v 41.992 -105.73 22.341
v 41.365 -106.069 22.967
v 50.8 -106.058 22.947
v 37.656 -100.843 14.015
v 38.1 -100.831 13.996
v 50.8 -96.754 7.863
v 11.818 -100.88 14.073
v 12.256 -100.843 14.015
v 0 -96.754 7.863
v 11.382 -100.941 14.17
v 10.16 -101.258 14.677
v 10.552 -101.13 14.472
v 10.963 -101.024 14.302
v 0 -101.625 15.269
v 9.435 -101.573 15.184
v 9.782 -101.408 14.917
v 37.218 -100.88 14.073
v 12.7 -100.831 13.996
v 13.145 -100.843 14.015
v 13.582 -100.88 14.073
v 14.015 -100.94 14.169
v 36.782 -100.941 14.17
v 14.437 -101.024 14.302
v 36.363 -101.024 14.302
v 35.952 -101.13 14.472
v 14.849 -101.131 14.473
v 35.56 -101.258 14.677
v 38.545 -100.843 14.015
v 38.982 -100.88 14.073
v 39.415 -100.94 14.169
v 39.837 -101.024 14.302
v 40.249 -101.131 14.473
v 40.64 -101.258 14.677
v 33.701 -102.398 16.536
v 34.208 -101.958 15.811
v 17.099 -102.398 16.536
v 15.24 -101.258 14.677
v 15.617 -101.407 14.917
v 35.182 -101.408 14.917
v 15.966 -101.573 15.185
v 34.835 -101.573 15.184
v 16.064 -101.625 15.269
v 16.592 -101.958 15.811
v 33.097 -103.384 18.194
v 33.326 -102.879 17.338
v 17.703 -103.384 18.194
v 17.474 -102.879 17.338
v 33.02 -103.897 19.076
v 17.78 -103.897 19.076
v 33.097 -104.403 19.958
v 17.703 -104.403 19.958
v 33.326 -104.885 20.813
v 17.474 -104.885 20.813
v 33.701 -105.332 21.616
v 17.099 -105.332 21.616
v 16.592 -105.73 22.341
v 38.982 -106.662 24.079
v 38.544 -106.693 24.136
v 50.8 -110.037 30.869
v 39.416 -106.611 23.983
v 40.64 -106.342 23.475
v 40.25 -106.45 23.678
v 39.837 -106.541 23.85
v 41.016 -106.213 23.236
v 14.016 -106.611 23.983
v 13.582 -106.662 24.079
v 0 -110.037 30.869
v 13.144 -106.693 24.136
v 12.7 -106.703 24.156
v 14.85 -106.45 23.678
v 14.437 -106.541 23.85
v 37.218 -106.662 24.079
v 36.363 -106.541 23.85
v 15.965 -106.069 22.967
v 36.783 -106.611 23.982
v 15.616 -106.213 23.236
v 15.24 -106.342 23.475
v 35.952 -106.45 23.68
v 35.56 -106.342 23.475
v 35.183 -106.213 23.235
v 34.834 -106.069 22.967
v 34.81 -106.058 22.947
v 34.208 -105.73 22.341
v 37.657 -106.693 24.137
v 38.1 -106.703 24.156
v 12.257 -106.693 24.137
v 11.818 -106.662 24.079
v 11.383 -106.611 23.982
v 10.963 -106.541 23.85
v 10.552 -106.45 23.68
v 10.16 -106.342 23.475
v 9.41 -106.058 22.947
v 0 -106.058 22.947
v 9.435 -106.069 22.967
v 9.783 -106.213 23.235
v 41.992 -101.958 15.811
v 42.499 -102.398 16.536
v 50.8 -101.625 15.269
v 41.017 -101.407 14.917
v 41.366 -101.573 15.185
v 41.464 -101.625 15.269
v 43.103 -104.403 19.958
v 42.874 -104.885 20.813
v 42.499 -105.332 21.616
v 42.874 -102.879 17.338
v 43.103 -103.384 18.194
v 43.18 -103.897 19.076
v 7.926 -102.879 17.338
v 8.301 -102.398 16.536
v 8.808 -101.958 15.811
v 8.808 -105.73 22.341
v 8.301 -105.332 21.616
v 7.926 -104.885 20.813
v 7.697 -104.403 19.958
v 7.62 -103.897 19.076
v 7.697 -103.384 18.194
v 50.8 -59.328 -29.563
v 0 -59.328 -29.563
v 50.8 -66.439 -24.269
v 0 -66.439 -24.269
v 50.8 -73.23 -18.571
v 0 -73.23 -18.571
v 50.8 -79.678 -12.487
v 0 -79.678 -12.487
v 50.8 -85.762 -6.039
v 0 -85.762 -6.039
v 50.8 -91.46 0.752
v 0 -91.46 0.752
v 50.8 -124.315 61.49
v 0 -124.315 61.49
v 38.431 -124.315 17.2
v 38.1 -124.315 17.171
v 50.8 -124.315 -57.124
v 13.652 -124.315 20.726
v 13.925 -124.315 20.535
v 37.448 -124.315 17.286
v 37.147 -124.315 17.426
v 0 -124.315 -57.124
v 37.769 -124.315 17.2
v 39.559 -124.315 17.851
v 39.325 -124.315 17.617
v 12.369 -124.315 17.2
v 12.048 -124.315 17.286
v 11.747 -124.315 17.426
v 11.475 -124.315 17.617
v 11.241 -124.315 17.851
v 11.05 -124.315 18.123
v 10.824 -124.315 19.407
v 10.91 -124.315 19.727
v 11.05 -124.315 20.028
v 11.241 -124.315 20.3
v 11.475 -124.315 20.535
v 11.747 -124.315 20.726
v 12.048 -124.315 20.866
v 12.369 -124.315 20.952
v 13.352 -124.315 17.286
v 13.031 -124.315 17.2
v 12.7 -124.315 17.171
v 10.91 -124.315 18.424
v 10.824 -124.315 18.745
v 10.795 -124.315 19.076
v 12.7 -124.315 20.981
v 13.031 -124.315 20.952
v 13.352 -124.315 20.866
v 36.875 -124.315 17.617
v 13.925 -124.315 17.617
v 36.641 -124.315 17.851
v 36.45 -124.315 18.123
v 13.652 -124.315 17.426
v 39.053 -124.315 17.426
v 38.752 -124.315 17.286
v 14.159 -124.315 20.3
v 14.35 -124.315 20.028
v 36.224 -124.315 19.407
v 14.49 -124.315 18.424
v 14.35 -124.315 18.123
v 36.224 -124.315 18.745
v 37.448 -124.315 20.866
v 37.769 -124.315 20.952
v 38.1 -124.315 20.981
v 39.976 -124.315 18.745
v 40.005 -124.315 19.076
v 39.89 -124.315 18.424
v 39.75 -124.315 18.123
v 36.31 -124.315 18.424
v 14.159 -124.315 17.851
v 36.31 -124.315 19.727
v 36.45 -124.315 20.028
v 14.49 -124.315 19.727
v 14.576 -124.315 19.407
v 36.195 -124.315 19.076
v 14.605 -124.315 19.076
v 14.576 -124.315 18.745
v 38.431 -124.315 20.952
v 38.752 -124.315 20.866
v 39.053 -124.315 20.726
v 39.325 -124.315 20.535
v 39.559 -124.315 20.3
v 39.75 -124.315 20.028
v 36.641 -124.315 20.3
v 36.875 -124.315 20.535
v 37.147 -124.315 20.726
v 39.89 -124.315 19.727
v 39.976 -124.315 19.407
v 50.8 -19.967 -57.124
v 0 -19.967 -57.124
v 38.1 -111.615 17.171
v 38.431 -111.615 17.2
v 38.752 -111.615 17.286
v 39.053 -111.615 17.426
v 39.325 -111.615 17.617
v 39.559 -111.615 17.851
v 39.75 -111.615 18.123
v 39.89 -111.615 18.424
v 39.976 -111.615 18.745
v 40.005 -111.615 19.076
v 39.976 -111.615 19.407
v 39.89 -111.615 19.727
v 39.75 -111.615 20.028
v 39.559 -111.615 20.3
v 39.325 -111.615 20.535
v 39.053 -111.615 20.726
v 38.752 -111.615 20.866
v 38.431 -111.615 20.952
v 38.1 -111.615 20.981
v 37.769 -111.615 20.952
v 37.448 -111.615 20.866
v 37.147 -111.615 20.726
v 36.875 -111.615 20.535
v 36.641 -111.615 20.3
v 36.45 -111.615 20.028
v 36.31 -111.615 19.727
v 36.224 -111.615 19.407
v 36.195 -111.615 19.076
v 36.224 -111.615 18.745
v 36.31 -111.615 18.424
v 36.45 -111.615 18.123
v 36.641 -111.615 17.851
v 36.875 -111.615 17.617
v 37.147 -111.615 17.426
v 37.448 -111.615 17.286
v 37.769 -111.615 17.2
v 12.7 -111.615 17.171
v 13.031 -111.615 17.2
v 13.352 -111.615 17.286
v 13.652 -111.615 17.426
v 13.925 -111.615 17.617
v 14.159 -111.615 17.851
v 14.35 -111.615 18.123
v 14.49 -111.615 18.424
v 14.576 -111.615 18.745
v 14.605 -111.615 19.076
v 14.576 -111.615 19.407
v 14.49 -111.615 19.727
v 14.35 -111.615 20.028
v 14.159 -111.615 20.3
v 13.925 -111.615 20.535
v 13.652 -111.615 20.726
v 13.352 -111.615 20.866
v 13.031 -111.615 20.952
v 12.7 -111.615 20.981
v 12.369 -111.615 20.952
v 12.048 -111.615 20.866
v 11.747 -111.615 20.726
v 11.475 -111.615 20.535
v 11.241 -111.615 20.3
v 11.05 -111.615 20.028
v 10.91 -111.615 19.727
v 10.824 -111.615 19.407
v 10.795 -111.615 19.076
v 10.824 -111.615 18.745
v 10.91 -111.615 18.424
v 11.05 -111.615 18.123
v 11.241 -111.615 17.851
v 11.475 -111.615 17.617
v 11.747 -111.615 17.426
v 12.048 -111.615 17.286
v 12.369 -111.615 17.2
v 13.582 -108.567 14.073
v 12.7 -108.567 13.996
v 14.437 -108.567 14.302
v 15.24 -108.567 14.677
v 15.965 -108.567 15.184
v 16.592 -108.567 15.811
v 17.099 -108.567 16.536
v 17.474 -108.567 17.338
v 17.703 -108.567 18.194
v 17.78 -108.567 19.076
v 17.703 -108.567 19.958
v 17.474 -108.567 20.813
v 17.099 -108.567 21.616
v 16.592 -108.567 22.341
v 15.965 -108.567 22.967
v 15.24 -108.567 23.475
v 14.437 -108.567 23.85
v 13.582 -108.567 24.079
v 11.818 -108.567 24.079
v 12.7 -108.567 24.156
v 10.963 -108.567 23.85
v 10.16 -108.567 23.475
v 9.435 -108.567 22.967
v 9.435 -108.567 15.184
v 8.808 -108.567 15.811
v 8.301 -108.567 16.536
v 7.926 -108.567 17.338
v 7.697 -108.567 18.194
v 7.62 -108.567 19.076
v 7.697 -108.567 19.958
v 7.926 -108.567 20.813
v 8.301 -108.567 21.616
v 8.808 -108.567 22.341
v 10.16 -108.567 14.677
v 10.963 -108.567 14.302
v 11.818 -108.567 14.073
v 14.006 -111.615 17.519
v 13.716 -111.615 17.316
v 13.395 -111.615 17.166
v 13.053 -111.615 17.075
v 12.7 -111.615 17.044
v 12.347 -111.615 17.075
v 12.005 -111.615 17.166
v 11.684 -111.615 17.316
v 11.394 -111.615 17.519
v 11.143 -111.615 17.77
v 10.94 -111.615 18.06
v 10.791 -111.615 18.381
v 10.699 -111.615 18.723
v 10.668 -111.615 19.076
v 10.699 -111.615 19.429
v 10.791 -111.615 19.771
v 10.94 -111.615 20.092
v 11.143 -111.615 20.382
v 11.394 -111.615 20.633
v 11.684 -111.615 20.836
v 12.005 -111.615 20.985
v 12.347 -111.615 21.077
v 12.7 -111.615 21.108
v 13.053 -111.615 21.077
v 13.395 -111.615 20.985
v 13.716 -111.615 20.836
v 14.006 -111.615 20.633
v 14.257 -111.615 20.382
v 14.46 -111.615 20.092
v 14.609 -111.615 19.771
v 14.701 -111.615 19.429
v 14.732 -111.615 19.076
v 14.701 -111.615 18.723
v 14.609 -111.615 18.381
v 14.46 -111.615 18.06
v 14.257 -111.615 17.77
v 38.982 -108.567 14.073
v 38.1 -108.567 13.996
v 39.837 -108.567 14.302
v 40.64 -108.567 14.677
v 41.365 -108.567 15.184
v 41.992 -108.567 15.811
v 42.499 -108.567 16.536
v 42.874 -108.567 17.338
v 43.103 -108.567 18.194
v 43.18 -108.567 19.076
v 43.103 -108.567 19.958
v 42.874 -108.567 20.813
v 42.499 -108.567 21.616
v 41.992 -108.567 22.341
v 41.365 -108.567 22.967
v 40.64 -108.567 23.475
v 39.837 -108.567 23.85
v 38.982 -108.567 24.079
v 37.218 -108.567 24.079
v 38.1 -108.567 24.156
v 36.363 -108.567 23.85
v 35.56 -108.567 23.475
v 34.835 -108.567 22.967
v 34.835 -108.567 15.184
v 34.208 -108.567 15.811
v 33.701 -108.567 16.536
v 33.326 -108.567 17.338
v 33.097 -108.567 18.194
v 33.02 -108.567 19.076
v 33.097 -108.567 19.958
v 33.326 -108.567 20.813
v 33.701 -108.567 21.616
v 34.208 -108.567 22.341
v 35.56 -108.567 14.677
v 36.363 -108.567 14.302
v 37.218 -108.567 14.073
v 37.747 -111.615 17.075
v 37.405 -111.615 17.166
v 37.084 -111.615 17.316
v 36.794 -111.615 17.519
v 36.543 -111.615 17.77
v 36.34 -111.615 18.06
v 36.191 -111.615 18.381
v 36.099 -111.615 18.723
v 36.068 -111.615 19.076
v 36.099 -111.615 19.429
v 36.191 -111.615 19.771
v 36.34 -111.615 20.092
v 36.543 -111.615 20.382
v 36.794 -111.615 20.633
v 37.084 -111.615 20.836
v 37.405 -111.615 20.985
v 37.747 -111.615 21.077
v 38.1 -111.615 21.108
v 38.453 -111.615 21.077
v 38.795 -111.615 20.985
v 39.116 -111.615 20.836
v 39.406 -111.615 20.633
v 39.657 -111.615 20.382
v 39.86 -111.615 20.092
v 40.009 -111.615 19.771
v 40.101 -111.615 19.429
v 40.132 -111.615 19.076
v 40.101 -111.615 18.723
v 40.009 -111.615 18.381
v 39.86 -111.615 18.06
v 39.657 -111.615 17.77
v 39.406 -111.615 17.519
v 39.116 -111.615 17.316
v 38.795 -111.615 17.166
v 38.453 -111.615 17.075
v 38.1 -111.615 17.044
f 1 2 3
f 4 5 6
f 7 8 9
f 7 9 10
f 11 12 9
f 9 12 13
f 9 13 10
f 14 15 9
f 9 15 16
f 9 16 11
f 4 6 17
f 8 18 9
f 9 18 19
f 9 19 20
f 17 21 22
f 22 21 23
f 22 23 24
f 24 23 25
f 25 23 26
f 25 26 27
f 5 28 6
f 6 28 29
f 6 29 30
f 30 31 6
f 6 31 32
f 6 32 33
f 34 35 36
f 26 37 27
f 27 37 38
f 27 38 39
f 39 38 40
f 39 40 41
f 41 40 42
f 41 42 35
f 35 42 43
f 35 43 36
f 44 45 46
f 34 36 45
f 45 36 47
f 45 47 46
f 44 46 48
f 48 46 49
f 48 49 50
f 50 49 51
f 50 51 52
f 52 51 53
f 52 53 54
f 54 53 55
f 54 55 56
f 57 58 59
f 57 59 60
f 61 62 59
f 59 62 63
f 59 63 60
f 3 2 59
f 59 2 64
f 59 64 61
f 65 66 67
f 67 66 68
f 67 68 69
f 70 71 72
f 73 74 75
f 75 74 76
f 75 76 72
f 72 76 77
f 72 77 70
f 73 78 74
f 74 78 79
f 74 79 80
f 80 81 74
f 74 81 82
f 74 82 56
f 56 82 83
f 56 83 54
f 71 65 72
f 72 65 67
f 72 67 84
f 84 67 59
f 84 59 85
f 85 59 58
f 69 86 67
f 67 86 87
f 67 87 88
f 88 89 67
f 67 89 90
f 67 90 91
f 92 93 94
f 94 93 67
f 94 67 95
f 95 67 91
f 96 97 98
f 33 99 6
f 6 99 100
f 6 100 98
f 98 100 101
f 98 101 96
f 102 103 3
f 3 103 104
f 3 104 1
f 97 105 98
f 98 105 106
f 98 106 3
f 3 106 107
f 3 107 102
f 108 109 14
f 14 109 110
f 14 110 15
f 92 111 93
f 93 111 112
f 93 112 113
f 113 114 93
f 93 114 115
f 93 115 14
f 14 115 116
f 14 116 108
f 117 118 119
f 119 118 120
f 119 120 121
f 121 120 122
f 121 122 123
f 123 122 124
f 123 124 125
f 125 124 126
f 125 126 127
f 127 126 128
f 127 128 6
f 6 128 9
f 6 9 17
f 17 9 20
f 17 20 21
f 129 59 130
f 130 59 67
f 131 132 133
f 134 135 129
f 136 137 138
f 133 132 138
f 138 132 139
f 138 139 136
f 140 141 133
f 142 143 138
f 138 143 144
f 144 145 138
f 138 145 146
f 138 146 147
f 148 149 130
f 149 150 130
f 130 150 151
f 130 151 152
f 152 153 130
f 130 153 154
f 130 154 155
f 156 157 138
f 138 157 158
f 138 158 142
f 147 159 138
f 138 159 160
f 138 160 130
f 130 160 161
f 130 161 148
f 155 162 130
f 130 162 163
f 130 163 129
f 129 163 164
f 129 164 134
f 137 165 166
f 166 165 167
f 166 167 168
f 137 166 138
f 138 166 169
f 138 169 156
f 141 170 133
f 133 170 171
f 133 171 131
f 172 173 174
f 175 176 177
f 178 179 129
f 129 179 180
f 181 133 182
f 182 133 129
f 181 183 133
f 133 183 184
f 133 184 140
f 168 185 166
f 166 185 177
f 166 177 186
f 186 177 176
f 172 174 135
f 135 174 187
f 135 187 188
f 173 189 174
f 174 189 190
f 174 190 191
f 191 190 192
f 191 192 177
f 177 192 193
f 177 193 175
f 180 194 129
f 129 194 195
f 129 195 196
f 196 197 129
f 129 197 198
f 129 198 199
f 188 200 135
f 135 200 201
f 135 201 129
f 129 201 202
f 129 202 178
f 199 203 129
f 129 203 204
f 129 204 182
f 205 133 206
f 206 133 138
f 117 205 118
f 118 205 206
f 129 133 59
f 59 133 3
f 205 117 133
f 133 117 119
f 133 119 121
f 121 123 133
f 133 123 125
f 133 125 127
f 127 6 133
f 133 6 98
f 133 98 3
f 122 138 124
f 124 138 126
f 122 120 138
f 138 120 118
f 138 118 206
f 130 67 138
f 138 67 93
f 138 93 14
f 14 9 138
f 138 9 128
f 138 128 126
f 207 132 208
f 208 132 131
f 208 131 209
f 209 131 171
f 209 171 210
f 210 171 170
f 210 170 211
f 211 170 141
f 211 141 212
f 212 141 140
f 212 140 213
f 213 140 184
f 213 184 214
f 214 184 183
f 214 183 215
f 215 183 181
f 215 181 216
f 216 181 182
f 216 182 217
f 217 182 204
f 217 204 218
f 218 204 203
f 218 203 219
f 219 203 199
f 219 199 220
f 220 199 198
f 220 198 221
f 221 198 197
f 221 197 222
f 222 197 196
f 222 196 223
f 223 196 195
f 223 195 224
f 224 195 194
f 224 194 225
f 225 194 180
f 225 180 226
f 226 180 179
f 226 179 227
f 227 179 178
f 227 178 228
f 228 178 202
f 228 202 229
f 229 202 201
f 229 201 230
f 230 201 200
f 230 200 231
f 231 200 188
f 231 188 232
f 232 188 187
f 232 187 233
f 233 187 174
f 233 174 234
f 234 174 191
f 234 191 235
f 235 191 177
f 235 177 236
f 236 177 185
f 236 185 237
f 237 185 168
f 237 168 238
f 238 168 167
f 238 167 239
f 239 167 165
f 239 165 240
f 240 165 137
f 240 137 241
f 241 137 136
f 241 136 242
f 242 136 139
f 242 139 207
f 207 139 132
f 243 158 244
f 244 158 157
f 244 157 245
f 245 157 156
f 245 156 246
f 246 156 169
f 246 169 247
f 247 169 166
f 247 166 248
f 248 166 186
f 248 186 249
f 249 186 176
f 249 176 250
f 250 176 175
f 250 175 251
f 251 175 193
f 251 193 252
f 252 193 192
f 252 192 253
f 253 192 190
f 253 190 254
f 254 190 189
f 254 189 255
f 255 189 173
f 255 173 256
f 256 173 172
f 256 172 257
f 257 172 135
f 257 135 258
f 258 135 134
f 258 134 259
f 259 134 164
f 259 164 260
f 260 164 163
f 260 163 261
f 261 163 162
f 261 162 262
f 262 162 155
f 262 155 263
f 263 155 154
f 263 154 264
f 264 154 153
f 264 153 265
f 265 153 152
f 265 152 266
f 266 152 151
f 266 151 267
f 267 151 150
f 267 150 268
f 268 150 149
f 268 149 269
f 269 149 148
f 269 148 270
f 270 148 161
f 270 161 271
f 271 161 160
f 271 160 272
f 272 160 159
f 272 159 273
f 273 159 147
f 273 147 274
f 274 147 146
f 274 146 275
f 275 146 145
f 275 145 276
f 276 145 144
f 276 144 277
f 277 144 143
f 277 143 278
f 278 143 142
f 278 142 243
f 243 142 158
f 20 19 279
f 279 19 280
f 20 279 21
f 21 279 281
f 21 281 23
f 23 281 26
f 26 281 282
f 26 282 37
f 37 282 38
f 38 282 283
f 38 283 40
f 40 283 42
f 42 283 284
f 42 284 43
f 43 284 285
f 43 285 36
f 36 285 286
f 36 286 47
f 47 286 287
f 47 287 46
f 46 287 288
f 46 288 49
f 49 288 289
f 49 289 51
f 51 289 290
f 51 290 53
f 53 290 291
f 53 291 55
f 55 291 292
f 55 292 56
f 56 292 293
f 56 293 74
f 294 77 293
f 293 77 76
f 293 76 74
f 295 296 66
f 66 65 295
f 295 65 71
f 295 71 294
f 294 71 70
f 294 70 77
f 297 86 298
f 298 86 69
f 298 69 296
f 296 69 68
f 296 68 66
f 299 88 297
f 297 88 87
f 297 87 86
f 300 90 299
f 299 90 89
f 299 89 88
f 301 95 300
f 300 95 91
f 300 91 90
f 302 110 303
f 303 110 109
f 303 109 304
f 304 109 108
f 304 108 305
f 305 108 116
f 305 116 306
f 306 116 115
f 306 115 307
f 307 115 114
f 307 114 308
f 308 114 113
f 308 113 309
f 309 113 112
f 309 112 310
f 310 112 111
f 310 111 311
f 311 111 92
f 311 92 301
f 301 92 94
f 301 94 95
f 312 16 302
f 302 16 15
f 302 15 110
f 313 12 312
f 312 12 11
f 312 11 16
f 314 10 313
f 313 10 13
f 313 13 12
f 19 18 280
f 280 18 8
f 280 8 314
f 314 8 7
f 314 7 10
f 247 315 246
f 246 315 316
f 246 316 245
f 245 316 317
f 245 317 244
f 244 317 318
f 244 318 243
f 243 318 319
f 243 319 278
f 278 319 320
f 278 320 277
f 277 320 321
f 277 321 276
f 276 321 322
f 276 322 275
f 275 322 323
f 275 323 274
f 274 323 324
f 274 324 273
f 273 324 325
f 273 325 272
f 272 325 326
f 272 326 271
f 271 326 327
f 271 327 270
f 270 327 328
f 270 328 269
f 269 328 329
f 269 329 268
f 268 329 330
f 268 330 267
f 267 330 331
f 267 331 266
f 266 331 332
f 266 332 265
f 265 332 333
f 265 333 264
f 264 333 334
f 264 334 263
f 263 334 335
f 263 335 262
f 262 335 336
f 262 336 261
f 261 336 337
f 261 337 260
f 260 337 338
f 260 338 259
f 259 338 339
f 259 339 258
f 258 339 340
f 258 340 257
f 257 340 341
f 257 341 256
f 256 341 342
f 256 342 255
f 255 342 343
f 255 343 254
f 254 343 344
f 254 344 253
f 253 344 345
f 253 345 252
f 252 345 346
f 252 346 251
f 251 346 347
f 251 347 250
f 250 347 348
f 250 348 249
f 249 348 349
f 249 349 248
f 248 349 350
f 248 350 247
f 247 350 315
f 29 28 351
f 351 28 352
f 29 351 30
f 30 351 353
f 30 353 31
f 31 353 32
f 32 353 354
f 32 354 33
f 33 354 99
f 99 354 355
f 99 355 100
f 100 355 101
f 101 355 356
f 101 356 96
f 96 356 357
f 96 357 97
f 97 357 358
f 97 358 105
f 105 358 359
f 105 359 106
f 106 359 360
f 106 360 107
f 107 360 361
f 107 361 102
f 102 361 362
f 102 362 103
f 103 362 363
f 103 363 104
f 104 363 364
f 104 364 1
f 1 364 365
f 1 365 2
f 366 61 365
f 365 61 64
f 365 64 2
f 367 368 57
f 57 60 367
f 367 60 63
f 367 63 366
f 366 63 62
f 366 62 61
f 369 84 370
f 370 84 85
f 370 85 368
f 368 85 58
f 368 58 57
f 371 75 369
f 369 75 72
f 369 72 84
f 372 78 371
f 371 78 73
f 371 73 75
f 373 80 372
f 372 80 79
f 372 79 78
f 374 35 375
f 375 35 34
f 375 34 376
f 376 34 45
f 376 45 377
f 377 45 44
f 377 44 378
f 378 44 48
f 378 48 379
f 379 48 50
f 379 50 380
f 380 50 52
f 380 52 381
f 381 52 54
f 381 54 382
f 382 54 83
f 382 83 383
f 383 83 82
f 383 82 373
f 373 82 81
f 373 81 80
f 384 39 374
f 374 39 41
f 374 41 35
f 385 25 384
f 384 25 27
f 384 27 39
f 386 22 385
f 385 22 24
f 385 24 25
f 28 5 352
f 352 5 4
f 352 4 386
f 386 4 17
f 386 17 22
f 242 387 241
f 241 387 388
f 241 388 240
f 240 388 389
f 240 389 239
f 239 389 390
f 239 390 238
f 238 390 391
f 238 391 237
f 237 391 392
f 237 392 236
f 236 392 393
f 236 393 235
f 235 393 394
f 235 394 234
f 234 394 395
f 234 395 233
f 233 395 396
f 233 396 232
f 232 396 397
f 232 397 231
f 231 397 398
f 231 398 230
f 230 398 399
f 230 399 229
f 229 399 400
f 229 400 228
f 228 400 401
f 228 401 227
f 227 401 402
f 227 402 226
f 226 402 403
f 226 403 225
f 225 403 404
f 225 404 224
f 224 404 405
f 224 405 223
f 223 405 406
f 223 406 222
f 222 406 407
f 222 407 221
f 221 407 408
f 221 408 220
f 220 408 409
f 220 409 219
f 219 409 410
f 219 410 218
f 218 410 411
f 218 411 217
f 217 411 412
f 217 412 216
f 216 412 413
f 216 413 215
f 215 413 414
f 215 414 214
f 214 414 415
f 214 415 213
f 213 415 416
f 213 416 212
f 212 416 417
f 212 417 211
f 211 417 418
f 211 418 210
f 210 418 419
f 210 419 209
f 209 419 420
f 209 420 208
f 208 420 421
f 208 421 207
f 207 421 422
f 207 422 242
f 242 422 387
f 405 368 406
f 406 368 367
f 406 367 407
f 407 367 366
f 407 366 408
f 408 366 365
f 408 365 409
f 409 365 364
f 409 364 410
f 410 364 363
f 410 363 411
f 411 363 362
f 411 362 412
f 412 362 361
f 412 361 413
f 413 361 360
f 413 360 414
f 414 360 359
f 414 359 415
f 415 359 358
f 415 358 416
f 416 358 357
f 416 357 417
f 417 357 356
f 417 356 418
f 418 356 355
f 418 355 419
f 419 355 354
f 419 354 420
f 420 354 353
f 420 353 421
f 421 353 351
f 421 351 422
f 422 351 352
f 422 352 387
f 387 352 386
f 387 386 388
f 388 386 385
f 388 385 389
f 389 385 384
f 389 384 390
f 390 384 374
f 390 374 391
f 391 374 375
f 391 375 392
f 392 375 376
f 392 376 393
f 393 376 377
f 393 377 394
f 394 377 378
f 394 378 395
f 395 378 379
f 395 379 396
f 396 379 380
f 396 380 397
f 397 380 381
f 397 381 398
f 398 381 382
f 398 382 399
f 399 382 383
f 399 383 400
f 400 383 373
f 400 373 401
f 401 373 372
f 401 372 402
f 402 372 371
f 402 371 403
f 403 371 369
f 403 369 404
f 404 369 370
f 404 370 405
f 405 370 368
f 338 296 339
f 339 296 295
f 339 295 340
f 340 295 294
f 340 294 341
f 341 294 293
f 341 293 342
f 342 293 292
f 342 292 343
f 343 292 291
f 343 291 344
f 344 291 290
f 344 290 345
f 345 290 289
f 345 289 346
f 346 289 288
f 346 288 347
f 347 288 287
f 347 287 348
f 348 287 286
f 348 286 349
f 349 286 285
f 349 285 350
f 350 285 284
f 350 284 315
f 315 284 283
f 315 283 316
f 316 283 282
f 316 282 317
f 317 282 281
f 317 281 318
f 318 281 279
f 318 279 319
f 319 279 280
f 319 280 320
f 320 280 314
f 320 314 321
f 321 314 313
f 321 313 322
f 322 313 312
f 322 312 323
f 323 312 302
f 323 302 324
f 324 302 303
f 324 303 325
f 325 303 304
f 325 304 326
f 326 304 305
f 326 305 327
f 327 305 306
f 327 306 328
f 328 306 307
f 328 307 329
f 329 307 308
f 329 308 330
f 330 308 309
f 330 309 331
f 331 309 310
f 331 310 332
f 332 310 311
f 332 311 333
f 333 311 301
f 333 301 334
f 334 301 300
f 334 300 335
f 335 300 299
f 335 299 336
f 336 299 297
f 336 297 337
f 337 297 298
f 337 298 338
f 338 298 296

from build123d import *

# Parameters (mm, degrees)
BOSS_EXTRUDE1_DEPTH = 50.8
SKETCH2_R           = 1.905
CUT_EXTRUDE1_DEPTH  = 101.6
CUT_EXTRUDE2_START  = -12.7
SKETCH3_R           = 5.08
CUT_EXTRUDE2_DEPTH  = 101.6
CHAMFER1_SIZE       = 3.048


with BuildPart() as part:
    # Sketch1 → Boss-Extrude1 (new body)
    with BuildSketch(Plane(origin=(0, 0, 0), x_dir=(0, 0, -1), z_dir=(1, 0, 0))):
        with BuildLine():
            Line((-61.489643294, -124.315200567), (57.124090119, -124.315200567))
            Line((57.124090119, -124.315200567), (57.124090119, -19.966735992))
            Line((57.124090119, -19.966735992), (29.562861669, -59.328249467))
            ThreePointArc((29.562861669, -59.328249467), (2.684921835, -88.660373698), (-30.868886791, -110.036507311))
            Line((-30.868886791, -110.036507311), (-61.489643294, -124.315200567))
        make_face()
    extrude(amount=BOSS_EXTRUDE1_DEPTH)

    # Sketch2 → Cut-Extrude1 (cut)
    with BuildSketch(Plane.XZ.offset(124.315200567)):
        with Locations(Location((12.7, 19.075909881, 0), (0, 0, 270))):
            Circle(SKETCH2_R)
        with Locations(Location((38.1, 19.075909881, 0), (0, 0, 270))):
            Circle(SKETCH2_R)
    extrude(amount=-CUT_EXTRUDE1_DEPTH, mode=Mode.SUBTRACT)

    # Sketch3 → Cut-Extrude2 (cut)
    with BuildSketch(Plane.XZ.offset(124.315200567).offset(CUT_EXTRUDE2_START)):
        with Locations(Location((12.7, 19.075909881, 0), (0, 0, 270))):
            Circle(SKETCH3_R)
        with Locations(Location((38.1, 19.075909881, 0), (0, 0, 270))):
            Circle(SKETCH3_R)
    extrude(amount=-CUT_EXTRUDE2_DEPTH, mode=Mode.SUBTRACT)

    # Chamfer1
    chamfer1_edges = [part.edges().sort_by_distance(p)[0] for p in [
        (12.7, -111.615200567, 24.155909881),
        (38.1, -111.615200567, 24.155909881),
    ]]
    chamfer(chamfer1_edges, length=CHAMFER1_SIZE)


solid = part.part
